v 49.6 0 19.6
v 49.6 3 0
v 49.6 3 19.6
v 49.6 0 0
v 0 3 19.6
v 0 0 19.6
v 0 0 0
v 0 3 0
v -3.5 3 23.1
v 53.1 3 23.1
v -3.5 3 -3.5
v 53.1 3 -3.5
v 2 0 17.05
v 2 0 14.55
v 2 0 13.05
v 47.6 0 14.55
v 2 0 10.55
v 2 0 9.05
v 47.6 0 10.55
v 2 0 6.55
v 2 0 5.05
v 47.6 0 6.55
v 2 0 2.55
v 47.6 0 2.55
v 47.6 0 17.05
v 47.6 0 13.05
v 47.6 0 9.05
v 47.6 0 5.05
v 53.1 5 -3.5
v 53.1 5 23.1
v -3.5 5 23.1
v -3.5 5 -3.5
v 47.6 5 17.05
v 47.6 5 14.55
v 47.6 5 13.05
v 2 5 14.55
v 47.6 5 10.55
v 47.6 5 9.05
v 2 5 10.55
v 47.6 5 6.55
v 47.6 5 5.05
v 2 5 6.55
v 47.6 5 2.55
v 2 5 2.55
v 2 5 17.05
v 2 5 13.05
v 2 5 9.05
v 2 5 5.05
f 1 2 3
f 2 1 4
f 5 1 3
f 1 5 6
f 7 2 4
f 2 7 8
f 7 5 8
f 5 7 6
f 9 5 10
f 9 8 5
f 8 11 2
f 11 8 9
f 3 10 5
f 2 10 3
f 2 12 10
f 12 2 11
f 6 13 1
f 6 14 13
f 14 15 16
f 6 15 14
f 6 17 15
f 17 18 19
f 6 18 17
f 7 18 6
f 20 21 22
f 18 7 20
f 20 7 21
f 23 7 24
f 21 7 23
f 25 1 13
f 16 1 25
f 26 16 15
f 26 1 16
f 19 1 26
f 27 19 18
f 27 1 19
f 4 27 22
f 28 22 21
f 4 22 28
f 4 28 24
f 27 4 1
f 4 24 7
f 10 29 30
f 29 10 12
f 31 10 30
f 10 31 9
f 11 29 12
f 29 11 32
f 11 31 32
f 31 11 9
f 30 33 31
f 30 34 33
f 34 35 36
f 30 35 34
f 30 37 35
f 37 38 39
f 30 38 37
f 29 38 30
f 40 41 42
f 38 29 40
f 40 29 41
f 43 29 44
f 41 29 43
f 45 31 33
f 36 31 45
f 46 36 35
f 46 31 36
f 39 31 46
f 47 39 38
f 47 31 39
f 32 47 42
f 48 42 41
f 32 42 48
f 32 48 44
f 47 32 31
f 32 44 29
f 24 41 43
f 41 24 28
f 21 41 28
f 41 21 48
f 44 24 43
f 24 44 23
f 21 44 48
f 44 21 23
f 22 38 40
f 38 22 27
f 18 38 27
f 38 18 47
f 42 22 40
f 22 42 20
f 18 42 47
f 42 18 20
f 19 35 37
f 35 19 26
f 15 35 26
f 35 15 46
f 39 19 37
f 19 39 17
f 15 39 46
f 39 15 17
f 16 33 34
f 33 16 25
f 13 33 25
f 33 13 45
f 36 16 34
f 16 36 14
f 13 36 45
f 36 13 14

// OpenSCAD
// ============================================================
//  MSE-6 — Top Dome Vent Grille Insert
//  Press-fit into a rectangular cutout in the top dome.
//  Allows Jetson fan heat to escape upward through the dome.
//
//  Suggested cutout location in top shell:
//    Near the top of the dome, centered (cosmetically hidden
//    in the raised central section of the MSE-6 top).
//  Cutout size: 50 × 20mm
//  Grille style: parallel horizontal slots (screen-accurate
//    to MSE-6 droid vent panels)
// ============================================================
$fn = 32;

// Cutout in top shell dome
cut_w      = 50.0;
cut_h      = 20.0;
dome_t     =  3.0;   // estimated dome wall thickness

// Grille body
body_w     = cut_w - 0.4;
body_h     = cut_h - 0.4;
body_d     = dome_t;

// Flange (inside dome)
flange_ow  =  3.5;
flange_t   =  2.0;

// Slot parameters
slot_h     =  2.5;   // slot height (open area)
bar_h      =  1.5;   // bar height between slots
bar_t      =  1.2;   // bar thickness (depth)
n_slots    = floor(body_h / (slot_h + bar_h));
margin_y   = (body_h - n_slots*(slot_h+bar_h) + bar_h) / 2;

// End bars
end_bar    =  2.0;

module vent_grille() {
    difference() {
        union() {
            // Body
            cube([body_w, body_d, body_h]);
            // Interior flange
            translate([-flange_ow, body_d, -flange_ow])
                cube([body_w + flange_ow*2, flange_t,
                      body_h + flange_ow*2]);
        }

        // Vent slots — horizontal, full width minus end bars
        for (i = [0 : n_slots-1]) {
            sz = margin_y + i*(slot_h + bar_h);
            translate([end_bar, -0.1, sz])
                cube([body_w - end_bar*2, body_d + flange_t + 0.2, slot_h]);
        }
    }
}

vent_grille();
